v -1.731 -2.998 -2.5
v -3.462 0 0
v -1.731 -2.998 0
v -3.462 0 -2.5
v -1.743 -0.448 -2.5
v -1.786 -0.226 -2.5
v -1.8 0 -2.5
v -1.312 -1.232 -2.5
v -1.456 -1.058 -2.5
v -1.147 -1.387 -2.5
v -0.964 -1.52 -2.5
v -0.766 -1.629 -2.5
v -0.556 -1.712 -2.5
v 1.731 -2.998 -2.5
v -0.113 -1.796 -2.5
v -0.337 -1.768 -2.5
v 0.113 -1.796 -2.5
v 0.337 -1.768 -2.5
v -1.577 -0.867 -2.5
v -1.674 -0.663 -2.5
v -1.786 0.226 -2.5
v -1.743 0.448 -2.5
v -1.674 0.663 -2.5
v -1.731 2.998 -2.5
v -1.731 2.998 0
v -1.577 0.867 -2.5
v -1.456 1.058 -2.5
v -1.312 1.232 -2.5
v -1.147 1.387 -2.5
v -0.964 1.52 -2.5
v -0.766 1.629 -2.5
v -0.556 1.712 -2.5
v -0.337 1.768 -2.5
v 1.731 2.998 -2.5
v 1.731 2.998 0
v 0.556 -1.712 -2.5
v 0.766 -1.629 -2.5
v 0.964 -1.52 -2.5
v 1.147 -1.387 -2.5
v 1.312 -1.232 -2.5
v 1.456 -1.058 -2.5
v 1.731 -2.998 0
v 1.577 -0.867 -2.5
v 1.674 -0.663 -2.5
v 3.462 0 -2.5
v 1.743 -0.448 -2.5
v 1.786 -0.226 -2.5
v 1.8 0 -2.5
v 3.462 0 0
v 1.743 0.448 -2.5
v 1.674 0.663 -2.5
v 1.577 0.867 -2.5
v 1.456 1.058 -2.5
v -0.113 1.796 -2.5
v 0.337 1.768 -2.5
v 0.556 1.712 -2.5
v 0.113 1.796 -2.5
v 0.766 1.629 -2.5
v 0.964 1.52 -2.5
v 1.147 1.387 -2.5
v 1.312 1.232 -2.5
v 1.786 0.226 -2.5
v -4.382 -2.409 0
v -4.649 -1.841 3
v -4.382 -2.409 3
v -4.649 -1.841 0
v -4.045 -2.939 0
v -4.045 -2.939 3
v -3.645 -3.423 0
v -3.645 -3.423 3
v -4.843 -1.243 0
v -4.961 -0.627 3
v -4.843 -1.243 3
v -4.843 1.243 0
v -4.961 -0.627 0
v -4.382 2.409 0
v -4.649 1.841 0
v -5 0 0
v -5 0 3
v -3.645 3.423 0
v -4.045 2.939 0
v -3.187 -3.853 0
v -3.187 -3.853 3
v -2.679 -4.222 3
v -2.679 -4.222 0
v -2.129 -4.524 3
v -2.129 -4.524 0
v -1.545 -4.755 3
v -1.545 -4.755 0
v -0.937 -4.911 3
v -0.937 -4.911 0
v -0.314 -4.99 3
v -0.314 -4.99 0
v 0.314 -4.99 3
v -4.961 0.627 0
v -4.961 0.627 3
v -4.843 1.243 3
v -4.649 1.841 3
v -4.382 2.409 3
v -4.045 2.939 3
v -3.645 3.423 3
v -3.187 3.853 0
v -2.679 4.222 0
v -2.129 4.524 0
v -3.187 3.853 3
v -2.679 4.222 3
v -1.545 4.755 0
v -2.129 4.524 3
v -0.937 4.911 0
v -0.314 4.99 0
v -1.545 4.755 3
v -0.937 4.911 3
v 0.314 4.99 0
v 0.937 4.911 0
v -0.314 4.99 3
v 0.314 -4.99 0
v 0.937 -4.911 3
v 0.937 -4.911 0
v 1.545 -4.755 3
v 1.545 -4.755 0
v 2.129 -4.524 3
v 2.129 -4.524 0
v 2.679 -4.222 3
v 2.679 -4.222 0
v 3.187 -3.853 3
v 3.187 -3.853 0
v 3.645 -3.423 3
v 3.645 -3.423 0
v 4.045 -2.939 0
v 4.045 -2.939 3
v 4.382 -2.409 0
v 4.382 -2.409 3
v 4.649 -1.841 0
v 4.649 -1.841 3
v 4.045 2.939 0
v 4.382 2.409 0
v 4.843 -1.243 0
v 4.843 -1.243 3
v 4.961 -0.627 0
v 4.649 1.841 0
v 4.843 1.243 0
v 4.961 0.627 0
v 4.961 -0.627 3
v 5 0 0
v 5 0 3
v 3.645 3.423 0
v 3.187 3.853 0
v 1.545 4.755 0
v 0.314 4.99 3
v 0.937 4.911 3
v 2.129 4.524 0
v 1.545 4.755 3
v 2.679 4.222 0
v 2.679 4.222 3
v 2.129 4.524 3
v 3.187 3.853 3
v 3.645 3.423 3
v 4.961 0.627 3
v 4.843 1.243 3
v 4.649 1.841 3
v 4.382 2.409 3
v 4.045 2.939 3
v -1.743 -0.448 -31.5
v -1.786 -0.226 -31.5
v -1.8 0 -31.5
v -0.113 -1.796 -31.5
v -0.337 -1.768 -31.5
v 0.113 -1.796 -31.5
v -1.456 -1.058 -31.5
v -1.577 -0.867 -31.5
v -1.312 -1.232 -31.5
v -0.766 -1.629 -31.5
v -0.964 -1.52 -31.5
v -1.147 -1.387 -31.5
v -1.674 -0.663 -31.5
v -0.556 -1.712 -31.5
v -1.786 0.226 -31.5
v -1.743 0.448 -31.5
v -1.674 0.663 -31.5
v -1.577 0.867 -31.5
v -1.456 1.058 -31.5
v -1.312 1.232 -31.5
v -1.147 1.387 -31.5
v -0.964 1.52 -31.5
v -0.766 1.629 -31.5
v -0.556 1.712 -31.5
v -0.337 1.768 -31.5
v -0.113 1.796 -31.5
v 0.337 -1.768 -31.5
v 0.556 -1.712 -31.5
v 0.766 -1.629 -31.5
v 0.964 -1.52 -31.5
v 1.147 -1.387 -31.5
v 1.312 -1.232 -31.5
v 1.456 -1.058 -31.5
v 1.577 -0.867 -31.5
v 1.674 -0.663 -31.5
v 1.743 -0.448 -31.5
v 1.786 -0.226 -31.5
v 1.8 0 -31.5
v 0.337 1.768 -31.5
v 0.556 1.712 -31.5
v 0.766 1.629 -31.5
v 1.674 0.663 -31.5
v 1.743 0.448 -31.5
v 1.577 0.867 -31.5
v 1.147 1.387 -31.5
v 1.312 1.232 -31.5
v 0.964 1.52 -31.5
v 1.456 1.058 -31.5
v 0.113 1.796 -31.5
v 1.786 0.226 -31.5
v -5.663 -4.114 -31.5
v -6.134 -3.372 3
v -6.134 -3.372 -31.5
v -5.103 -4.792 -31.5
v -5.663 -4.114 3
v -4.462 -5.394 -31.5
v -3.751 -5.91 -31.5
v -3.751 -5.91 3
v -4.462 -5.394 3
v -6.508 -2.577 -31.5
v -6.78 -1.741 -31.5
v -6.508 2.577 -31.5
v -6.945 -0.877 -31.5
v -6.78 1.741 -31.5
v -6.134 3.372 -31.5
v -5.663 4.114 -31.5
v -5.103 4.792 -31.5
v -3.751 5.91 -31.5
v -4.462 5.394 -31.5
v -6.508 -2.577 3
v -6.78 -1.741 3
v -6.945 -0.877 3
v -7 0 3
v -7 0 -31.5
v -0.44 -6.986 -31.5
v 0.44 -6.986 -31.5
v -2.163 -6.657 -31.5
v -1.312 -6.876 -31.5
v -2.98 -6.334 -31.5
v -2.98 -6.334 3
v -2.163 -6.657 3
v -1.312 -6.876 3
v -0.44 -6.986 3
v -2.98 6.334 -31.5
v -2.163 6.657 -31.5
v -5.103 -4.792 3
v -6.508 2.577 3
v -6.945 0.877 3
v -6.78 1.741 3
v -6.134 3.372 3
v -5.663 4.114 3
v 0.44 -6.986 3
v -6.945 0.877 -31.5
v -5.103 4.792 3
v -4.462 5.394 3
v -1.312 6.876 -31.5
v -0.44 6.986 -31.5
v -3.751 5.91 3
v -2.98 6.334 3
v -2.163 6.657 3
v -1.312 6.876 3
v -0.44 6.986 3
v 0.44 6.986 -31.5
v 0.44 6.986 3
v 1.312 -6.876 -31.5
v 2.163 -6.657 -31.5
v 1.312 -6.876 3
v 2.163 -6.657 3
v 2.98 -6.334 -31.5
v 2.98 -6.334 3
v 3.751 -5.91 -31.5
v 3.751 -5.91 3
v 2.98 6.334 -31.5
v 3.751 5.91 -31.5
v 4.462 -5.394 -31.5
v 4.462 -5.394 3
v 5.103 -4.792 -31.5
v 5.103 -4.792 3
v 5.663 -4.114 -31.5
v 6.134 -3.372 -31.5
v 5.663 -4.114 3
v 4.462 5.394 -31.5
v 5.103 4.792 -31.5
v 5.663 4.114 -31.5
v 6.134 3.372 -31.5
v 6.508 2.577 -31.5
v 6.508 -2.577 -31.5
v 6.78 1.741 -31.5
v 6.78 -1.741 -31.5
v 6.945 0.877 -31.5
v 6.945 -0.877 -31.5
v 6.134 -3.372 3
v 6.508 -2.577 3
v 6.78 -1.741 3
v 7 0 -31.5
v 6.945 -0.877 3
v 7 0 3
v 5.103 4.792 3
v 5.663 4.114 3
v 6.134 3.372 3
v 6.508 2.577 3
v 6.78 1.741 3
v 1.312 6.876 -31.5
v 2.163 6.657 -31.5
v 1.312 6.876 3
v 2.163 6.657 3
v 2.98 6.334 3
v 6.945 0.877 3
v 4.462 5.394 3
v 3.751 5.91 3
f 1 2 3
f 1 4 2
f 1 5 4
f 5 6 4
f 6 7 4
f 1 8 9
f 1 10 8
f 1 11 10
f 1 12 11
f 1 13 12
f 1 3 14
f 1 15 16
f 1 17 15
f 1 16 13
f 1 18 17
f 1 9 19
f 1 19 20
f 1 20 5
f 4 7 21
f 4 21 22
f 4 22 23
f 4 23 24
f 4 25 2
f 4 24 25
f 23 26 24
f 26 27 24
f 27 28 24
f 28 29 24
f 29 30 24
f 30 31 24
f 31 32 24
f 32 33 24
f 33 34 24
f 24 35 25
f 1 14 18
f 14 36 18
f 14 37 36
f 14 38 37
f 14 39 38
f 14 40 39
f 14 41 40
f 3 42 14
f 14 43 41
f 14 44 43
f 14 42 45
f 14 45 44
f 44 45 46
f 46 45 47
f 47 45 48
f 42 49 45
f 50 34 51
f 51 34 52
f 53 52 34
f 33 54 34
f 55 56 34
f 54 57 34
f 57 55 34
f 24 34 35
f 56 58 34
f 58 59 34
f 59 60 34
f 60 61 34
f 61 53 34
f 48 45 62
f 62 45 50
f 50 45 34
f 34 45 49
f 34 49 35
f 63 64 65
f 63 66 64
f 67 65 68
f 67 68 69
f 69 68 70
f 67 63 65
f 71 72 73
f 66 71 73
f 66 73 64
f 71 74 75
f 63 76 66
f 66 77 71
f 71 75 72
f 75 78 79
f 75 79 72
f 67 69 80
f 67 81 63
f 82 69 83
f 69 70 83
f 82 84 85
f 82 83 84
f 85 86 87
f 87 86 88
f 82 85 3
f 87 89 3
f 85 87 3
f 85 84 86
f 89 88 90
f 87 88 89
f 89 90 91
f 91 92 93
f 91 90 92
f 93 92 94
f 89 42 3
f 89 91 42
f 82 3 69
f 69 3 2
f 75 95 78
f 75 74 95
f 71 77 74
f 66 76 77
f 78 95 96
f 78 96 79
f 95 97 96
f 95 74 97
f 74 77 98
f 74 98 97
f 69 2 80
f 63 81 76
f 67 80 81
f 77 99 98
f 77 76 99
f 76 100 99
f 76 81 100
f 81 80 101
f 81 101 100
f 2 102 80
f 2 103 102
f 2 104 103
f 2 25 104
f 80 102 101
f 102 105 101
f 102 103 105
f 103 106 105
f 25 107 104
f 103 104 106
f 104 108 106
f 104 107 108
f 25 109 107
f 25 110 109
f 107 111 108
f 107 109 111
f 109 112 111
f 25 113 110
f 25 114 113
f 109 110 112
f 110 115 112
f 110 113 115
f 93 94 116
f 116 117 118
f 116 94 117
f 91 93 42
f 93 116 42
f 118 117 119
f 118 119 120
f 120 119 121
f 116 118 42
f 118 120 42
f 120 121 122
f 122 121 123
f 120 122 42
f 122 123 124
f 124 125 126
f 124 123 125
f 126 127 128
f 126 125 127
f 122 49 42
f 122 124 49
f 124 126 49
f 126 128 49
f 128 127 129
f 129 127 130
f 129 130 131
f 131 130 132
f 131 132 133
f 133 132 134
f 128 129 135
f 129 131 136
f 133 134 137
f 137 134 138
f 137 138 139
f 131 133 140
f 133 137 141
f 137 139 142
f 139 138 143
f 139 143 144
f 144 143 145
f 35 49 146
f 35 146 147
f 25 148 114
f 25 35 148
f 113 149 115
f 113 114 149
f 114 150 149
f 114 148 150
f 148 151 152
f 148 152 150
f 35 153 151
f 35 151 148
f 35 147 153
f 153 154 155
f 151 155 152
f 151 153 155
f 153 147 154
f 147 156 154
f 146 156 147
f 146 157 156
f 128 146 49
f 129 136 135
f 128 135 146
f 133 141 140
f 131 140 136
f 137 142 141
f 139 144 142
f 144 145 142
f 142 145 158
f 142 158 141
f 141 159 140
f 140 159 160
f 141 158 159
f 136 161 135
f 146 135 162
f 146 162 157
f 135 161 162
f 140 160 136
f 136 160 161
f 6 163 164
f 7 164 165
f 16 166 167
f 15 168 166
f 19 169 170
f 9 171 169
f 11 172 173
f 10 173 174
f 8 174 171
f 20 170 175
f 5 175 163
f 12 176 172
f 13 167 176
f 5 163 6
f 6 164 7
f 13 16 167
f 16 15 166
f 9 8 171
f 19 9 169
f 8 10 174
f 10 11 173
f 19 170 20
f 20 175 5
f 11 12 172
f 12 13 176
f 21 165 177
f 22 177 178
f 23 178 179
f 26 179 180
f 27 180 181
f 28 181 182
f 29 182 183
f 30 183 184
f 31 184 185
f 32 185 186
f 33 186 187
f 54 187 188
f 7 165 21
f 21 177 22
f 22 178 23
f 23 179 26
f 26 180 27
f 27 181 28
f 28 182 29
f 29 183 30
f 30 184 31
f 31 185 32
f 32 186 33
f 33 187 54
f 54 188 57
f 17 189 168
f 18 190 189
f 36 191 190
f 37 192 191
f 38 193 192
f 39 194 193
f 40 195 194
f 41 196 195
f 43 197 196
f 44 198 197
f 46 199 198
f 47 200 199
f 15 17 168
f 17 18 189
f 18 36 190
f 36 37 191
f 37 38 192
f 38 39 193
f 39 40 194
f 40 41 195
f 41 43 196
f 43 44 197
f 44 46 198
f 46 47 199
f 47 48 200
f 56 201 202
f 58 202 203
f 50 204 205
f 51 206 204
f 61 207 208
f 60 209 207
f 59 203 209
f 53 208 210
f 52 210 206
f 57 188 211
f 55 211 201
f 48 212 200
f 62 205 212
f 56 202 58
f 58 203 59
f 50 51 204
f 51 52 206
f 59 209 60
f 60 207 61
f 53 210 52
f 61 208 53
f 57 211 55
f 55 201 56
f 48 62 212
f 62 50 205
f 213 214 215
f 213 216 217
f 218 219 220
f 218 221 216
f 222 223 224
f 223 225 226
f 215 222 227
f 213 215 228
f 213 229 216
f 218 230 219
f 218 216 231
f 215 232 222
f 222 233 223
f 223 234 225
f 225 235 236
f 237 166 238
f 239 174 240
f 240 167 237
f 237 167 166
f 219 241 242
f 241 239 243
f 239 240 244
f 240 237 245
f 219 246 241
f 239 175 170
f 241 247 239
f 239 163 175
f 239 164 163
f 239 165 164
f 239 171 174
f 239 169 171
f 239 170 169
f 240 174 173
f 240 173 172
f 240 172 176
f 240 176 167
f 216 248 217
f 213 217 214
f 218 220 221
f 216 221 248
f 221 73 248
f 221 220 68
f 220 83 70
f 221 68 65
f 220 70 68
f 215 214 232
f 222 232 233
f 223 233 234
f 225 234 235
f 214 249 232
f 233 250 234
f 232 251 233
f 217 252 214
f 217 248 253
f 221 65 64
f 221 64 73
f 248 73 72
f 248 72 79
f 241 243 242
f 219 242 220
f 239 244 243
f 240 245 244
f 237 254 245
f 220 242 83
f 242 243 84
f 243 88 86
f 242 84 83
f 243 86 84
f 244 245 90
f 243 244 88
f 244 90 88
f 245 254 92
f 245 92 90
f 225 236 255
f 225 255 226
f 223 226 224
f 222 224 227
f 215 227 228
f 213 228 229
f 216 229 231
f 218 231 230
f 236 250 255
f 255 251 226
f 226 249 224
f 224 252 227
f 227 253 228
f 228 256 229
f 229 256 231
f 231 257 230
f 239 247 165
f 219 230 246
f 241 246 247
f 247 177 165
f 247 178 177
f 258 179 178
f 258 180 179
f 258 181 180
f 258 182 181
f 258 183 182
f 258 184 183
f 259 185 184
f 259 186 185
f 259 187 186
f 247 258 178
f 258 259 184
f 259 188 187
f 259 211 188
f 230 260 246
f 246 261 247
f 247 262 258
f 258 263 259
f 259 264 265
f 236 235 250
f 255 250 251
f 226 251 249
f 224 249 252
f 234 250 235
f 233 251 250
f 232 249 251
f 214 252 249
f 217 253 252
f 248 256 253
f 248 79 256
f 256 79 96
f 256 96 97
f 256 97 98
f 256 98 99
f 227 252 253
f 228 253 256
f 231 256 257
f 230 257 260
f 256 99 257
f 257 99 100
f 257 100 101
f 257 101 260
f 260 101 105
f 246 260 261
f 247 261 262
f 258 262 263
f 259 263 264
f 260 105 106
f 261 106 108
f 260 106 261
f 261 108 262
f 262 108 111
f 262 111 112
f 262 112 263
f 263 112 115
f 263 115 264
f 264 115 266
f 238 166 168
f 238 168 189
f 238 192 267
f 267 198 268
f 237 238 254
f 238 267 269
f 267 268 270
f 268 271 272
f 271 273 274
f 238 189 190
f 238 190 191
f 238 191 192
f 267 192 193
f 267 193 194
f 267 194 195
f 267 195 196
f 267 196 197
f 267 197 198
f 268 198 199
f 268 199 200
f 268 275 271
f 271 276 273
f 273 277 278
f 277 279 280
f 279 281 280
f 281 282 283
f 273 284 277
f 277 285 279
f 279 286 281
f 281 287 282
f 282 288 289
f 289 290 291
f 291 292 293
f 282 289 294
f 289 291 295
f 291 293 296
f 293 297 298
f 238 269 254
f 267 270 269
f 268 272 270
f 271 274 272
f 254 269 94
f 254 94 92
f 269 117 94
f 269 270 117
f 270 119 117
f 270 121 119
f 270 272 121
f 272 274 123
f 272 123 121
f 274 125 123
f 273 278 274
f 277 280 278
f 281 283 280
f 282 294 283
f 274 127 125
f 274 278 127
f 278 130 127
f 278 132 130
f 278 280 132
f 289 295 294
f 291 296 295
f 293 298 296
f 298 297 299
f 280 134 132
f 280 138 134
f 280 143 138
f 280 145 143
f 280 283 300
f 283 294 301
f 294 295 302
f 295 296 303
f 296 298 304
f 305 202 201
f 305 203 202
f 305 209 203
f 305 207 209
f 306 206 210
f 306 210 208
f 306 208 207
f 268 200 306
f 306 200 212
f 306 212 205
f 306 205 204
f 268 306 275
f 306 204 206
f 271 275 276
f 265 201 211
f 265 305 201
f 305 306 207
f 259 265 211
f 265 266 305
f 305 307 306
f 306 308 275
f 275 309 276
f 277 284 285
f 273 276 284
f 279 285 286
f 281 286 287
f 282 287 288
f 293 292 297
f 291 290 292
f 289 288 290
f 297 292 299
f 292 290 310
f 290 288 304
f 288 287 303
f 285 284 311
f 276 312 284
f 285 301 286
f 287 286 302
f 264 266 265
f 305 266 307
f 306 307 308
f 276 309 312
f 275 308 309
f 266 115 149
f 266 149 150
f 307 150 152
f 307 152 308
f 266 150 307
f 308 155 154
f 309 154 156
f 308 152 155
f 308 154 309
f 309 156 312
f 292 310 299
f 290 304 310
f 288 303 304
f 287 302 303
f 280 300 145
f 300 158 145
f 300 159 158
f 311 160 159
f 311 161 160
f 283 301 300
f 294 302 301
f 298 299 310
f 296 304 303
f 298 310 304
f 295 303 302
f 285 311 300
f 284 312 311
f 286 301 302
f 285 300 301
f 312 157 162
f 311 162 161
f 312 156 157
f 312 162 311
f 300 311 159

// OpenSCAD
$fn = 50;

difference() {
	union() {
		translate(v = [0, 0, -31.5]) {
			cylinder(h = 34.5, r = 7.0);
		}
	}
	union() {
		translate(v = [0, 0, 0]) {
			rotate(a = [0, 0, 0]) {
				difference() {
					union() {
						translate(v = [0, 0, -2.5]) {
							linear_extrude(height = 2.5) {
								polygon(points = [[3.4619999999999997, 0.0], [1.7310000000000003, 2.9981799479017264], [-1.7309999999999992, 2.9981799479017264], [-3.4619999999999997, 4.2397272186481365e-16], [-1.7310000000000014, -2.998179947901726], [1.7309999999999977, -2.9981799479017277]]);
							}
						}
					}
					union();
				}
			}
		}
		#cylinder(h = 3, r = 5.0);
		#translate(v = [0, 0, -100.0]) {
			cylinder(h = 200, r = 1.8);
		}
	}
}
